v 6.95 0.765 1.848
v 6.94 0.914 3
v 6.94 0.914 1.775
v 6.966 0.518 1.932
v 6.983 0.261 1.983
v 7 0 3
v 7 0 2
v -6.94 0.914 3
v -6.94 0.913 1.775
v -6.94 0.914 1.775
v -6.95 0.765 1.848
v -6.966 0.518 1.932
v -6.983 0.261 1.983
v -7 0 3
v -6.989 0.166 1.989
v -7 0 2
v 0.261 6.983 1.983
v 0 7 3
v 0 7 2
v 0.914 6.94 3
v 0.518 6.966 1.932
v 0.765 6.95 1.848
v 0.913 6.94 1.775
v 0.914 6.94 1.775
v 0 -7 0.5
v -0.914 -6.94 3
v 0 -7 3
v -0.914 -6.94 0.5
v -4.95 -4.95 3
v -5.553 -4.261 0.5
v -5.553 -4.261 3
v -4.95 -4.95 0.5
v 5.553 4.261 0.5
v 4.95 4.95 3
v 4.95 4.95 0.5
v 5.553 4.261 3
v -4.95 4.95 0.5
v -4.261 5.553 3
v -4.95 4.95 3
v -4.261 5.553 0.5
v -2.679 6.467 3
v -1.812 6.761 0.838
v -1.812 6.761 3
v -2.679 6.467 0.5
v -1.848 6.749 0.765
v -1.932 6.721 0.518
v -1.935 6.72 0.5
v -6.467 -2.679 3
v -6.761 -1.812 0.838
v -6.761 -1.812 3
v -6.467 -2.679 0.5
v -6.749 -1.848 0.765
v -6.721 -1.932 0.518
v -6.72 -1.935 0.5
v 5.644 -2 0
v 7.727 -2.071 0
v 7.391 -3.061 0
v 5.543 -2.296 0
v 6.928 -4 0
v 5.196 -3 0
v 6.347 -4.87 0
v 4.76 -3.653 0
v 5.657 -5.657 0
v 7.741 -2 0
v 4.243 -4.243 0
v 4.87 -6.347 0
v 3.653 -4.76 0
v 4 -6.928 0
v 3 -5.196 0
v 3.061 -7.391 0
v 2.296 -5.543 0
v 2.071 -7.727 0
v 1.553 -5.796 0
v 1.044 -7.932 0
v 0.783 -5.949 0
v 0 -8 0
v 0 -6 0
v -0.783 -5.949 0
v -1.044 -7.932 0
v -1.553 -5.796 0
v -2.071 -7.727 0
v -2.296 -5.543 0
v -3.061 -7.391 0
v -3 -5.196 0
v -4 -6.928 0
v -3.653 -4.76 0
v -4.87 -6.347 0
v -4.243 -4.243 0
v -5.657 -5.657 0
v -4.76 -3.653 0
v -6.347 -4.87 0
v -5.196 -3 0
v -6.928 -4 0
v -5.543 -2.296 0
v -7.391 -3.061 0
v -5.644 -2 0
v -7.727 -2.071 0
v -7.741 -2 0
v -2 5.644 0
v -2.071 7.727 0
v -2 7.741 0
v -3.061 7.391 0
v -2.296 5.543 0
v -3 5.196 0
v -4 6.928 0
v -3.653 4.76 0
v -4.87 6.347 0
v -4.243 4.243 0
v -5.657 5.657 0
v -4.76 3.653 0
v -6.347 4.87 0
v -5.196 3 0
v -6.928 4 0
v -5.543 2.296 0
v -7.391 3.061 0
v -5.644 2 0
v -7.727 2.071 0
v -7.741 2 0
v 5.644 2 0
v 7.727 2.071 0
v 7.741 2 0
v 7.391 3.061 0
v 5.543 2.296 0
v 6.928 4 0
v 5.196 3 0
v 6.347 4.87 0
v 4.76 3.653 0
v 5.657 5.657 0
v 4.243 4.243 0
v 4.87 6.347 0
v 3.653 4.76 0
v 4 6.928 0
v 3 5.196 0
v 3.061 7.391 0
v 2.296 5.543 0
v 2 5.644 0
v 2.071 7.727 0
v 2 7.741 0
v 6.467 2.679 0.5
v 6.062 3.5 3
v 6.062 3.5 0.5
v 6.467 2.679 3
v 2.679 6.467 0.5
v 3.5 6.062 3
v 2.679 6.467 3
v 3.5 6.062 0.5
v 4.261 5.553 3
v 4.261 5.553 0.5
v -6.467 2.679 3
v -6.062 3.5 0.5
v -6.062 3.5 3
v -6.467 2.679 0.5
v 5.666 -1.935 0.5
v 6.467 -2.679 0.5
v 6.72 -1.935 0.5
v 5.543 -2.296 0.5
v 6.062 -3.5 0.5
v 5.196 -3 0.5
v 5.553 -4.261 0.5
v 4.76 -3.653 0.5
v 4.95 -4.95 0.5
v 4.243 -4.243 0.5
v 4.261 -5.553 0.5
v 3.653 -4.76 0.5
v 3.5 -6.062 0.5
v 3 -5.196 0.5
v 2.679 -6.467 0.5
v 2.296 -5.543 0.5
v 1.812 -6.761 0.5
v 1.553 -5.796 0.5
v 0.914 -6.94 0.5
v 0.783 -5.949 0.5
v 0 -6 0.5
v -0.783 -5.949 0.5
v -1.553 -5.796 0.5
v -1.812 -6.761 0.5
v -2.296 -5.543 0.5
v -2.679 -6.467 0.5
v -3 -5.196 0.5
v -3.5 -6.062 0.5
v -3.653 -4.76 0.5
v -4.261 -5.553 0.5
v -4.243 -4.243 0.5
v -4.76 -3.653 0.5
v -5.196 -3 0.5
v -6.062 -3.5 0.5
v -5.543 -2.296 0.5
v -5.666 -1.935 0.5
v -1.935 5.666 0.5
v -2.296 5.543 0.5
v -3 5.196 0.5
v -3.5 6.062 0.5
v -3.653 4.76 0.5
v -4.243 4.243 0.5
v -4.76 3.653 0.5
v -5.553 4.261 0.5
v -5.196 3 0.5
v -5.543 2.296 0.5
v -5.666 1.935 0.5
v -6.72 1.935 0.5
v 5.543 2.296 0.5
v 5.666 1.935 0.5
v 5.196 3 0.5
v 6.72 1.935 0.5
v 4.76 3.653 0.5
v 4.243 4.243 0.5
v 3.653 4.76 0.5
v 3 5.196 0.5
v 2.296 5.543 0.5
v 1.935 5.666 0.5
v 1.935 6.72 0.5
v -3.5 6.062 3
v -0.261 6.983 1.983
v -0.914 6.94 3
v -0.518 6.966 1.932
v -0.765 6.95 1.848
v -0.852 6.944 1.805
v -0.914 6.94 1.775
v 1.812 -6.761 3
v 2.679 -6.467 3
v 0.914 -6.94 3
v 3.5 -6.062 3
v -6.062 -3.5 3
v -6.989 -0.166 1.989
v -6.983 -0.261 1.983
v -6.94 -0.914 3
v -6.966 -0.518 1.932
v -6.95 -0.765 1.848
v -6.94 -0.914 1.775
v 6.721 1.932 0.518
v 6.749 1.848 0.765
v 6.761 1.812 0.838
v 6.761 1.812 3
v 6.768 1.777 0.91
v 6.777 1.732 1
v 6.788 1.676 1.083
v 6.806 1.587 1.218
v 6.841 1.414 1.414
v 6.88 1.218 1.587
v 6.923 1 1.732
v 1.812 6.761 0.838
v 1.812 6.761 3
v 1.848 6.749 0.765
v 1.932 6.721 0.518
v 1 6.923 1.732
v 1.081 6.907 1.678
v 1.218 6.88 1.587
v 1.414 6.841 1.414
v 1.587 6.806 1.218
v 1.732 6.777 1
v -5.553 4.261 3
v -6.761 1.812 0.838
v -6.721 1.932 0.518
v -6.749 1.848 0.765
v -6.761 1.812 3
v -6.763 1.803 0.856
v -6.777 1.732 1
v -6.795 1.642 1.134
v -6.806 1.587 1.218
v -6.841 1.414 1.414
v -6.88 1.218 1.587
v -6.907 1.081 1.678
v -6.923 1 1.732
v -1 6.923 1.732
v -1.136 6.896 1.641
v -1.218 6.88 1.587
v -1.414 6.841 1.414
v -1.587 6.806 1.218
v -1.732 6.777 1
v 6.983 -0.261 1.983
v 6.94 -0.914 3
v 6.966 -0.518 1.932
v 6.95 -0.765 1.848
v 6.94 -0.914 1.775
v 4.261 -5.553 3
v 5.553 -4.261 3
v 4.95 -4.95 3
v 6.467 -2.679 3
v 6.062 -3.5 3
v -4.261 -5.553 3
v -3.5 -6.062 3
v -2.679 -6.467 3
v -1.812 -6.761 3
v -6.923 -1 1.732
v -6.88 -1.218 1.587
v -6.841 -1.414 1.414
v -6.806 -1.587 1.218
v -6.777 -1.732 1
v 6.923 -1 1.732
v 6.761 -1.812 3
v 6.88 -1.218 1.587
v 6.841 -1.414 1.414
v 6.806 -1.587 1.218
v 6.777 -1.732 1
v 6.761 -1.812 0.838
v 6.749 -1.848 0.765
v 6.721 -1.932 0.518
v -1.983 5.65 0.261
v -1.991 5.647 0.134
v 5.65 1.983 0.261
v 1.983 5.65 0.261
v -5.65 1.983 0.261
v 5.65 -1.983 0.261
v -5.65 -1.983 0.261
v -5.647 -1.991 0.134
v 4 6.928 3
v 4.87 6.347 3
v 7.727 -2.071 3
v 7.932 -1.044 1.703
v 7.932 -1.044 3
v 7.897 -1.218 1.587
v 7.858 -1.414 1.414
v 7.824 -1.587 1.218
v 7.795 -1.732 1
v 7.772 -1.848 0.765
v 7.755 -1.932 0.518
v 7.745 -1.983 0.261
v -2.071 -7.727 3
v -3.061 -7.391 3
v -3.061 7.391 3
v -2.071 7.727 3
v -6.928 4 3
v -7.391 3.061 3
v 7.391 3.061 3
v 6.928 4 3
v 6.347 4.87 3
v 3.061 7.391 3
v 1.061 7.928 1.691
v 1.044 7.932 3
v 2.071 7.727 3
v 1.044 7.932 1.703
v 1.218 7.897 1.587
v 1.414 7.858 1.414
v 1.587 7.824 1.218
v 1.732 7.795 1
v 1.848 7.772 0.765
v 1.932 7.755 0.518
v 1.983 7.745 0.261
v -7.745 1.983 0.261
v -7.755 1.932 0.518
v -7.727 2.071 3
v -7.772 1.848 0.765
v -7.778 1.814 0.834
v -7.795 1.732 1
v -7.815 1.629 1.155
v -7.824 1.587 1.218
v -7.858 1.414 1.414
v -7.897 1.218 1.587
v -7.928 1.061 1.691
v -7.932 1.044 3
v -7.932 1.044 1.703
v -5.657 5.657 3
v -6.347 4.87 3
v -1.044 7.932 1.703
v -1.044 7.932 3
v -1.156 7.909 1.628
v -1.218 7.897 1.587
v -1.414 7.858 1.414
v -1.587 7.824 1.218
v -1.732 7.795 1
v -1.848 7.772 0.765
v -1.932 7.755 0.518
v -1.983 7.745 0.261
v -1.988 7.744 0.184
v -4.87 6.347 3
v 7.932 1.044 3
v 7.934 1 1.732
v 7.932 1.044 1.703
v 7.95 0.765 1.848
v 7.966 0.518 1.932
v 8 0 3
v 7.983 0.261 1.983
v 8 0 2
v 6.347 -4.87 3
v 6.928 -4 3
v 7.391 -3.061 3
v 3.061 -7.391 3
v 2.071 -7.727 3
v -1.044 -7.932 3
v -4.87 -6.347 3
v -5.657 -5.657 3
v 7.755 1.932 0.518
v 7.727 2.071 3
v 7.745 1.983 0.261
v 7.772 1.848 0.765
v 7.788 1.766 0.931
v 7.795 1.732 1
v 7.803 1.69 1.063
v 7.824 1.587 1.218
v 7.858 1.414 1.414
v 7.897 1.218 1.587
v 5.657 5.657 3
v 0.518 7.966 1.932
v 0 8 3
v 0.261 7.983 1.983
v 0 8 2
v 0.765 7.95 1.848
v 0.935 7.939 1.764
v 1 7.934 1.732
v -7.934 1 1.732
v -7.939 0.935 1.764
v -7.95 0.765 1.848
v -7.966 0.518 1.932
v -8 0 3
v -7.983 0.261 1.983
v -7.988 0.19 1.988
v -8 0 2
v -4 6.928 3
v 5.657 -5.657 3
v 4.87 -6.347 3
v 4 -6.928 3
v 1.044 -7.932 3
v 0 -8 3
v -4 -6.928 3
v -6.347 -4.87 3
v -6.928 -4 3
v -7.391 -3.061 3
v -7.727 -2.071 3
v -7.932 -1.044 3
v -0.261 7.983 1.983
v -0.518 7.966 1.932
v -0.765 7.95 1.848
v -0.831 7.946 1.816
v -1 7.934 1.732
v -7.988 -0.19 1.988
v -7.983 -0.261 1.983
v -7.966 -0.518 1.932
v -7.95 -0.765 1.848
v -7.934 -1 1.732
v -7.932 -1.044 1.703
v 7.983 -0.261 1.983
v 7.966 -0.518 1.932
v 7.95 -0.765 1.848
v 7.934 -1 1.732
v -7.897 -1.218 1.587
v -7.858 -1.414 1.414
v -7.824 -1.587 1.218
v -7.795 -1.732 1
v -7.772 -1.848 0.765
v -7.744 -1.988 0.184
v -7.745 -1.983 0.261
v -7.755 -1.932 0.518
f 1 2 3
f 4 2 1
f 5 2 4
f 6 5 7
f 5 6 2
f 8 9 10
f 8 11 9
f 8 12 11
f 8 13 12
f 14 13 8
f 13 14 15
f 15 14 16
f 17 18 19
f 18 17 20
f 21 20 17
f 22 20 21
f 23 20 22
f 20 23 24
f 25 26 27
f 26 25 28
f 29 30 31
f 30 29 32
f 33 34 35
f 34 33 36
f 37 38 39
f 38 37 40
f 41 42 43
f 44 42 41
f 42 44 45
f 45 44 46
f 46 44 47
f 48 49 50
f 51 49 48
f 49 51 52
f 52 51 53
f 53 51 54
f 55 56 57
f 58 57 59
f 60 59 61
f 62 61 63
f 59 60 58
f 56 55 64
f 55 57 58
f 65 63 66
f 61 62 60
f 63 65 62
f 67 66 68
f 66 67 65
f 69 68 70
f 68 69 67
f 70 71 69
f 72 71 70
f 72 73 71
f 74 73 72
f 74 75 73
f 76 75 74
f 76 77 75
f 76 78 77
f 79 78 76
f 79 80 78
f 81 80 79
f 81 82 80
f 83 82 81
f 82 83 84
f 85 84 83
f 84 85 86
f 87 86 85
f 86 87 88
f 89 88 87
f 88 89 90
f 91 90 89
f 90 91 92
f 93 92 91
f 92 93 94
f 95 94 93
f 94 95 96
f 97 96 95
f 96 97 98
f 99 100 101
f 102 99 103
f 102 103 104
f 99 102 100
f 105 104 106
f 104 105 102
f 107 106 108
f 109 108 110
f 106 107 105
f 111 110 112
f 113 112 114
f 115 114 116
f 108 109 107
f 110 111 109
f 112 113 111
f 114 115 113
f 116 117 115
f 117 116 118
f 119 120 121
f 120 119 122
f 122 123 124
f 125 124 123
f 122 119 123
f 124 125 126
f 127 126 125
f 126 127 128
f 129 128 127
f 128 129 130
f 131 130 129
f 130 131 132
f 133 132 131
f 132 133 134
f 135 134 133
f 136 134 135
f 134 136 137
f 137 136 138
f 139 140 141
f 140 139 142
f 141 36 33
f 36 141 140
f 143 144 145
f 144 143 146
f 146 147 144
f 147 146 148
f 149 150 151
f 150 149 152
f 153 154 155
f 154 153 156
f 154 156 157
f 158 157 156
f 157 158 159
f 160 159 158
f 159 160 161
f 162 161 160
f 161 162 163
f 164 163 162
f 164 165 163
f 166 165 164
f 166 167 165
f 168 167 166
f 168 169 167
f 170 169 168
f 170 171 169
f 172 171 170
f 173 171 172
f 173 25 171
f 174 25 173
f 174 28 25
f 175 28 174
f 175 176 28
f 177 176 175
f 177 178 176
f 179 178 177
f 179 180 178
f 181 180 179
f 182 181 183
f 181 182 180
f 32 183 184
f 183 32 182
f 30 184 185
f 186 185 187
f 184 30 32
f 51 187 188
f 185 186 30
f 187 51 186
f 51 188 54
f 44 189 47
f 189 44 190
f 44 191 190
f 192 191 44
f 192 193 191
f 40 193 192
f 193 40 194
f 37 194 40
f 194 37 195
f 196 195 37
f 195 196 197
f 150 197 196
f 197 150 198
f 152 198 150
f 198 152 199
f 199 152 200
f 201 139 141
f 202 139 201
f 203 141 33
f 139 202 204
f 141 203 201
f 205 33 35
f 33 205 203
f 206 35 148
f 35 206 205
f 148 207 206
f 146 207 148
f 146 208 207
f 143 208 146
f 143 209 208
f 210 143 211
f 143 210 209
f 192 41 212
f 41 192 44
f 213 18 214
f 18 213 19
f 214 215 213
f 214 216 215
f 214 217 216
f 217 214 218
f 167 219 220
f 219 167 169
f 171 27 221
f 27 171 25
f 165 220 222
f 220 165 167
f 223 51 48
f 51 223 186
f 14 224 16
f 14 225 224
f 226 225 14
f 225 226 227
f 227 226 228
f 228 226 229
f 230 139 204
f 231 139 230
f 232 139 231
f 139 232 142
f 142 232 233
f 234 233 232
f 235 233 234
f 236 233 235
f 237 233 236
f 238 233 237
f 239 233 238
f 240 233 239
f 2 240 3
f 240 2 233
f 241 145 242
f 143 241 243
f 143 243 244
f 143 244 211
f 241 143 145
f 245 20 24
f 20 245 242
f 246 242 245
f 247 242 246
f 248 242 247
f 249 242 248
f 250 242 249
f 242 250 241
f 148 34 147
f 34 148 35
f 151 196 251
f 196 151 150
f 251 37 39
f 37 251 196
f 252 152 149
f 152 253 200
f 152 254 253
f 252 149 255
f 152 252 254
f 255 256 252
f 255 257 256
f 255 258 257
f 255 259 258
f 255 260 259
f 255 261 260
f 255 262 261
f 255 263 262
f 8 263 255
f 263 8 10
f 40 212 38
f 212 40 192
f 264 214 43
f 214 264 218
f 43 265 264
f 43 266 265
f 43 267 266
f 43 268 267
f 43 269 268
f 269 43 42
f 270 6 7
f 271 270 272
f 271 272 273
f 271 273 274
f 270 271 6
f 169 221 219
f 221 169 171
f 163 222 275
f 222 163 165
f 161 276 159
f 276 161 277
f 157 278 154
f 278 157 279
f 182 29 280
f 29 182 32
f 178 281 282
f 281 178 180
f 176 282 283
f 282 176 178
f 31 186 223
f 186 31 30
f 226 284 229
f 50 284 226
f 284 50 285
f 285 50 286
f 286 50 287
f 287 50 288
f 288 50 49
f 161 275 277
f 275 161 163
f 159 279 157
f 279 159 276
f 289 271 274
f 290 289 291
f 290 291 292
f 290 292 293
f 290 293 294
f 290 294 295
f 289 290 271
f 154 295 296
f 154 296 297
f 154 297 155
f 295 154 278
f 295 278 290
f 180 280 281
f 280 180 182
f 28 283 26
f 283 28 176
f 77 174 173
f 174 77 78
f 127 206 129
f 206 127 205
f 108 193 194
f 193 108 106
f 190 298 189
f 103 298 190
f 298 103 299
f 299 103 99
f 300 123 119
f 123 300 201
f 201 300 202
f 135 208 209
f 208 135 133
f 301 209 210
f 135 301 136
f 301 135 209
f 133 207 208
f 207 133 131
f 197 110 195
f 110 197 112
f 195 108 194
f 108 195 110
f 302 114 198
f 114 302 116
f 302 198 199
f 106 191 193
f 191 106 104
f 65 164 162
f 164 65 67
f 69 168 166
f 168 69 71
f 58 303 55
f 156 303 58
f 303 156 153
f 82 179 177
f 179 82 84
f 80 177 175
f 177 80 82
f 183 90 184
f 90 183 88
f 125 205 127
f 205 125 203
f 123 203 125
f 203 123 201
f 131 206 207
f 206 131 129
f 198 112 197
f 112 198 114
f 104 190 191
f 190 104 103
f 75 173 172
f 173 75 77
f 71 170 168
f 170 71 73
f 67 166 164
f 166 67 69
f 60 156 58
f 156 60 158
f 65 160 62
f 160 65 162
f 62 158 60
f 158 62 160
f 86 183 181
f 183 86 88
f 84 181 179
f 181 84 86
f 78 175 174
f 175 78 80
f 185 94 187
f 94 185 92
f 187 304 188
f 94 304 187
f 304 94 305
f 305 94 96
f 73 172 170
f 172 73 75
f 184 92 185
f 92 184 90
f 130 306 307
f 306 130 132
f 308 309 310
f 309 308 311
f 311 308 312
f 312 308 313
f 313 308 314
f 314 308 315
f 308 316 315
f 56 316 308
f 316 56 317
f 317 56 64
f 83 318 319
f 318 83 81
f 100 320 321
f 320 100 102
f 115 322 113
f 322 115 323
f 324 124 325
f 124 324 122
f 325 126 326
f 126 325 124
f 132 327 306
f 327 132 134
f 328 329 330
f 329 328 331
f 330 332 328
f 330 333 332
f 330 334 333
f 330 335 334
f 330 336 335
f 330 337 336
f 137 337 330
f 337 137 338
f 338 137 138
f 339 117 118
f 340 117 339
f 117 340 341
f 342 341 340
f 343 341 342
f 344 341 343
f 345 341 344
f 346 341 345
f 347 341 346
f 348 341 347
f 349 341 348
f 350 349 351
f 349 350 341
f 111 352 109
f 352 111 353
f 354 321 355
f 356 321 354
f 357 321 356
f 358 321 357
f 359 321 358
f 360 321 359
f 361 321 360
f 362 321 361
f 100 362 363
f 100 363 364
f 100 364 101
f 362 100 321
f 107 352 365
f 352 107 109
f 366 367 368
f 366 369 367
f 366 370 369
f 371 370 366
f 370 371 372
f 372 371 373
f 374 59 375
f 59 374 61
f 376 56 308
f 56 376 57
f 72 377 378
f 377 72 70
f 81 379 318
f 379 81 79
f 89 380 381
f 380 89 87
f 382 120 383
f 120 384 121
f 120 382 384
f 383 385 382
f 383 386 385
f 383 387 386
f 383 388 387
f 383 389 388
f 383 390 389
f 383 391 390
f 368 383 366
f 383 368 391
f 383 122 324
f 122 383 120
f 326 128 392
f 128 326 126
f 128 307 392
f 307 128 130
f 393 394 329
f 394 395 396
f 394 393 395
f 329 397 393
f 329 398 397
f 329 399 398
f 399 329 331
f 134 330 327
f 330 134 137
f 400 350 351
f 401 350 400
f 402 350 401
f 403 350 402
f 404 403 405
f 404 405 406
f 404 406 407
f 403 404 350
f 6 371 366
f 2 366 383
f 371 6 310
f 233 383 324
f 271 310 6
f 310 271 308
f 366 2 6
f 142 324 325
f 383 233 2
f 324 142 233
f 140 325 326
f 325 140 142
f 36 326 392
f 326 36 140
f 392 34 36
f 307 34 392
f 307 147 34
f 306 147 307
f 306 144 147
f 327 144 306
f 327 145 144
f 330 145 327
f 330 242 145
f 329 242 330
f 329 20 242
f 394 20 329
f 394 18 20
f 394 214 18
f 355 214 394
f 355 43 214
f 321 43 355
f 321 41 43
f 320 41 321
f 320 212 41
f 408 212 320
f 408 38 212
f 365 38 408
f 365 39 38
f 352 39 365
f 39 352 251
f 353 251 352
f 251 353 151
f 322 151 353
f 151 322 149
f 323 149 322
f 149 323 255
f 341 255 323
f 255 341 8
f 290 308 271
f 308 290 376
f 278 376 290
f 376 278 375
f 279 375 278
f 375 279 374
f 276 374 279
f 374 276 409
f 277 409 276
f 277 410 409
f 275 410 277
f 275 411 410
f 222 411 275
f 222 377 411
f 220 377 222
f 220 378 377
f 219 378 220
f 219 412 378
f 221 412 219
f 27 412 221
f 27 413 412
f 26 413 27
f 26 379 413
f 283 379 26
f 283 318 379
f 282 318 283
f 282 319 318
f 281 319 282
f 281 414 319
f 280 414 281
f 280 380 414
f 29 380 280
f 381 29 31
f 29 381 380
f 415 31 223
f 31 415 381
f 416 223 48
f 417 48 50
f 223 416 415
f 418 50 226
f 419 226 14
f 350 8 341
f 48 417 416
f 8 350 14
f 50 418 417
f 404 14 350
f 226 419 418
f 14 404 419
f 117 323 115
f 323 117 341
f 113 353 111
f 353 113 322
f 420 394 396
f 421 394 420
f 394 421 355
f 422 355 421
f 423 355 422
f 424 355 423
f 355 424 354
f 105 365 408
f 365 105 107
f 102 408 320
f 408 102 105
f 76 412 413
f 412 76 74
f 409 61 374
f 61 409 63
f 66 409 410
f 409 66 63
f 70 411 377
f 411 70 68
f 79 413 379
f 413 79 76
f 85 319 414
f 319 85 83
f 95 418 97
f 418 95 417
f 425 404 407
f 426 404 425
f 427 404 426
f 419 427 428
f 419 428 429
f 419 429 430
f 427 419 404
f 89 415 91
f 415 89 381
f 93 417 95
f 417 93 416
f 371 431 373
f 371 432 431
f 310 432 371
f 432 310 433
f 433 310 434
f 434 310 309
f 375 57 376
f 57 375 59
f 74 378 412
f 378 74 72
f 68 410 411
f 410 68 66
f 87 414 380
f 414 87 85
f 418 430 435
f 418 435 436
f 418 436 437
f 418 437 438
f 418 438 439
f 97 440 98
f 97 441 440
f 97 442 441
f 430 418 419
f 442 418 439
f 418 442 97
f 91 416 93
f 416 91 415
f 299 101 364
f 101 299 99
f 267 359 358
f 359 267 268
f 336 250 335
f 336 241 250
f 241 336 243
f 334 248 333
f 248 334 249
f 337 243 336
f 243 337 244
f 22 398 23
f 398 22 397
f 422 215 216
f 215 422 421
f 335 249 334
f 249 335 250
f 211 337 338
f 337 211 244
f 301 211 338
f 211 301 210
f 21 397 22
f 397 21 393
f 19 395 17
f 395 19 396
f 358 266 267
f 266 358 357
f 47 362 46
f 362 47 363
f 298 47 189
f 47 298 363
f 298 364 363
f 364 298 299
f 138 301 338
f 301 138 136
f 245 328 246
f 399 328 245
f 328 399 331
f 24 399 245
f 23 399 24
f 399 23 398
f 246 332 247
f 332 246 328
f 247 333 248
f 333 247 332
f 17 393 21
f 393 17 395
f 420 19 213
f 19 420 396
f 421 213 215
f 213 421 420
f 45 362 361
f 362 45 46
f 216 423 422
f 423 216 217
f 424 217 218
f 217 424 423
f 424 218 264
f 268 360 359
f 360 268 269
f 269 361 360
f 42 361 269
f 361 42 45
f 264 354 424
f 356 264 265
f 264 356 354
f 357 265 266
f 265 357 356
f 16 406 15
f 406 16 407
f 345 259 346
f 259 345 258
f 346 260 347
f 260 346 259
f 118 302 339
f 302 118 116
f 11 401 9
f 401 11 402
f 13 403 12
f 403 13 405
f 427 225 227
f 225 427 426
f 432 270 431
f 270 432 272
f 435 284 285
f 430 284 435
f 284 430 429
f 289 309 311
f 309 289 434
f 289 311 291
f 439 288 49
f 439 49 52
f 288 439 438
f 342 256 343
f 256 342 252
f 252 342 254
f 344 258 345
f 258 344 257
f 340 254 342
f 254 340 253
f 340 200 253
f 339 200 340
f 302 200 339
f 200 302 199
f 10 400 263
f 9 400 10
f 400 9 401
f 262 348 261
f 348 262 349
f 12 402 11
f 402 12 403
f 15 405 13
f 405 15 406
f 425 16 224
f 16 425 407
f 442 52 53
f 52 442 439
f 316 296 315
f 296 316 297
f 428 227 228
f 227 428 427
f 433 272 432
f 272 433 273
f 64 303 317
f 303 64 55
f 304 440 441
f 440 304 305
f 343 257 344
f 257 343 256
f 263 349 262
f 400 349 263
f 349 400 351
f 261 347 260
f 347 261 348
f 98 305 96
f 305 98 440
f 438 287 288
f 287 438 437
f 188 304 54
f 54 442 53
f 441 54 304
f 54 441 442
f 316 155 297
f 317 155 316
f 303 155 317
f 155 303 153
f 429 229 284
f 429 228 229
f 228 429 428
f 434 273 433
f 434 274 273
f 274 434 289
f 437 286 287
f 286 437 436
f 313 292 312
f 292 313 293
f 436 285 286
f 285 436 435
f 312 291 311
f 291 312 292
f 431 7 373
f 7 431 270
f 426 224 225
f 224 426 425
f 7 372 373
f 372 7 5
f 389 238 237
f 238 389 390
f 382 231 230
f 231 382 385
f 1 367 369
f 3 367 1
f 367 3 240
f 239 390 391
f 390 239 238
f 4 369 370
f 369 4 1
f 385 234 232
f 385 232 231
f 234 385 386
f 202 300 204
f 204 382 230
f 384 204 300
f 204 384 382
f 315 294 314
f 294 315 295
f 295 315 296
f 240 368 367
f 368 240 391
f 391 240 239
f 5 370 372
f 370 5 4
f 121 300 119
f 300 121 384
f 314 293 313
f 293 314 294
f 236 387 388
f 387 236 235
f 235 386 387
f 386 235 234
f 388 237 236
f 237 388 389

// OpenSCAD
// file: ../build_environments.scad
// build_environments.scad: modules to build level sections
//

module pool(diameter=10.0, wall_height=2.0, step_width=3.0, connections=[])
{
    difference() {
        union() {
        difference() {
            cylinder(h=0.5,r1=diameter+step_width,r2=diameter+step_width,$fn=48);
            translate([0,0,-0.1])
                cylinder(h=0.7,r1=diameter,r2=diameter,$fn=48);
        }
        difference() {
            cylinder(h=wall_height,r1=diameter+step_width+1.0,r2=diameter+step_width+1.0,$fn=48);
            translate([0,0,-0.1])
                cylinder(h=wall_height+0.2,r1=diameter+step_width,r2=diameter+step_width,$fn=48);
        }
        }
    
        for (c = connections)
        {
            rotate([0,90,0]) {
                angle = atan2(c[1],c[0]);
                rotate([-angle,0,0]) {
                    cylinder(h=diameter+5.0,r1=c[2],r2=c[2],$fn=48);
                }
            }
        }
    }
}

module straight(length=10.0, width=2.0, dy1=0.0, dy2=0.0, dz=0.0)
{
    dims = [0, 0, 0, 0, 0, (dz/length)];
    matrix = [
        [ 1, dims[0], dims[1], 0 ],
        [ dims[2], 1, dims[4], 0 ],
        [ dims[5], dims[3], 1, 0 ],
        [ 0, 0, 0, 1 ]
    ];
    multmatrix(matrix)
    difference() {
        translate([dy1,0,0])
        union() {
            rotate([0,90,0]) {
                difference() {
                    cylinder(h=(length-dy1-dy2),r1=width+1.0,r2=width+1.0,$fn=24);
                    translate([0,0,-0.1])
                        cylinder(h=(length-dy1-dy2+0.2),r1=width,r2=width,$fn=24);
                }
                difference() {
                    cylinder(h=1.0,r1=width+2.0,r2=width+2.0,$fn=24);
                    translate([0,0,-0.1])
                        cylinder(h=1.2,r1=width,r2=width,$fn=24);
                }
                translate([0,0,(length-dy1-dy2)-1.0]) {
                    difference() {
                        cylinder(h=1.0,r1=width+2.0,r2=width+2.0,$fn=24);
                        translate([0,0,-0.1])
                            cylinder(h=1.2,r1=width,r2=width,$fn=24);
                    }
                }
            }
        }
        translate([0,0,-(2*width+4.0)/2])
            cube([3*length,3*length,2*width+4.0],center=true);
    }
}

module curve(p0=[0,0], center=[0,0], dir=1, angle=0.0, width=2.0)
{
    radius = sqrt((p0[0]-center[0])*(p0[0]-center[0]) + (p0[1]-center[1])*(p0[1]-center[1]));
    if (dir == 0) {
        difference() {
            rotate([0,0,-90])
            difference() {
                rotate_extrude(angle = angle, convexity = 10, $fn=32)
                    translate([radius, 0, 0])
                        circle(r = width+1.0,$fn=24);
                rotate([0,0,-1.0])
                    rotate_extrude(angle = angle+2.0, convexity = 10, $fn=32)
                        translate([radius, 0, 0])
                            circle(r = width,$fn=24);
            }
            translate([0,0,-(2*width+4.0)/2])
                cube([5*radius,5*radius,2*width+4.0],center=true);
        }
    }
    else {
        difference() {
            rotate([0,0,90])
            difference() {
                rotate_extrude(angle = -angle, convexity = 10, $fn=32)
                    translate([radius, 0, 0])
                        circle(r = width+1.0,$fn=24);
                rotate([0,0,1.0])
                    rotate_extrude(angle = -angle-2.0, convexity = 10, $fn=32)
                        translate([radius, 0, 0])
                            circle(r = width,$fn=24);
            }
            translate([0,0,-(2*width+4.0)/2])
                cube([5*radius,5*radius,2*width+4.0],center=true);
        }
    }

}

// test pool
//pool(diameter=12.0000, wall_height=3.0000, step_width=3.0000, connections=[[0.0000,-26.0000,2.0000], [23.6074,0.0000,2.0000]]);

// test straight, slope
//straight(length=26.0000, width=2.0000, dy1=11.8322, dy2=6.7082, dz=0.0000);
//straight(length=29.1549, width=12.0000, dy1=0.0000, dy2=0.0000, dz=-15.0000);

// test curve
//curve(p0=[23.6074, 0.0000], center=[23.6074, 5.0000], dir=0, angle=60.1011, width=2.0000);
//curve(p0=[33.6426, 12.4219], center=[37.9771, 9.9295], dir=1, angle=120.4627, width=2.0000);
// main file
use <../build_environments.scad>;
pool(diameter=6.0000, wall_height=3.0000, step_width=1.0000, connections=[[0.0000,16.0000,2.0000], [-16.0000,0.0000,2.0000], [16.0000,0.0000,2.0000]]);
